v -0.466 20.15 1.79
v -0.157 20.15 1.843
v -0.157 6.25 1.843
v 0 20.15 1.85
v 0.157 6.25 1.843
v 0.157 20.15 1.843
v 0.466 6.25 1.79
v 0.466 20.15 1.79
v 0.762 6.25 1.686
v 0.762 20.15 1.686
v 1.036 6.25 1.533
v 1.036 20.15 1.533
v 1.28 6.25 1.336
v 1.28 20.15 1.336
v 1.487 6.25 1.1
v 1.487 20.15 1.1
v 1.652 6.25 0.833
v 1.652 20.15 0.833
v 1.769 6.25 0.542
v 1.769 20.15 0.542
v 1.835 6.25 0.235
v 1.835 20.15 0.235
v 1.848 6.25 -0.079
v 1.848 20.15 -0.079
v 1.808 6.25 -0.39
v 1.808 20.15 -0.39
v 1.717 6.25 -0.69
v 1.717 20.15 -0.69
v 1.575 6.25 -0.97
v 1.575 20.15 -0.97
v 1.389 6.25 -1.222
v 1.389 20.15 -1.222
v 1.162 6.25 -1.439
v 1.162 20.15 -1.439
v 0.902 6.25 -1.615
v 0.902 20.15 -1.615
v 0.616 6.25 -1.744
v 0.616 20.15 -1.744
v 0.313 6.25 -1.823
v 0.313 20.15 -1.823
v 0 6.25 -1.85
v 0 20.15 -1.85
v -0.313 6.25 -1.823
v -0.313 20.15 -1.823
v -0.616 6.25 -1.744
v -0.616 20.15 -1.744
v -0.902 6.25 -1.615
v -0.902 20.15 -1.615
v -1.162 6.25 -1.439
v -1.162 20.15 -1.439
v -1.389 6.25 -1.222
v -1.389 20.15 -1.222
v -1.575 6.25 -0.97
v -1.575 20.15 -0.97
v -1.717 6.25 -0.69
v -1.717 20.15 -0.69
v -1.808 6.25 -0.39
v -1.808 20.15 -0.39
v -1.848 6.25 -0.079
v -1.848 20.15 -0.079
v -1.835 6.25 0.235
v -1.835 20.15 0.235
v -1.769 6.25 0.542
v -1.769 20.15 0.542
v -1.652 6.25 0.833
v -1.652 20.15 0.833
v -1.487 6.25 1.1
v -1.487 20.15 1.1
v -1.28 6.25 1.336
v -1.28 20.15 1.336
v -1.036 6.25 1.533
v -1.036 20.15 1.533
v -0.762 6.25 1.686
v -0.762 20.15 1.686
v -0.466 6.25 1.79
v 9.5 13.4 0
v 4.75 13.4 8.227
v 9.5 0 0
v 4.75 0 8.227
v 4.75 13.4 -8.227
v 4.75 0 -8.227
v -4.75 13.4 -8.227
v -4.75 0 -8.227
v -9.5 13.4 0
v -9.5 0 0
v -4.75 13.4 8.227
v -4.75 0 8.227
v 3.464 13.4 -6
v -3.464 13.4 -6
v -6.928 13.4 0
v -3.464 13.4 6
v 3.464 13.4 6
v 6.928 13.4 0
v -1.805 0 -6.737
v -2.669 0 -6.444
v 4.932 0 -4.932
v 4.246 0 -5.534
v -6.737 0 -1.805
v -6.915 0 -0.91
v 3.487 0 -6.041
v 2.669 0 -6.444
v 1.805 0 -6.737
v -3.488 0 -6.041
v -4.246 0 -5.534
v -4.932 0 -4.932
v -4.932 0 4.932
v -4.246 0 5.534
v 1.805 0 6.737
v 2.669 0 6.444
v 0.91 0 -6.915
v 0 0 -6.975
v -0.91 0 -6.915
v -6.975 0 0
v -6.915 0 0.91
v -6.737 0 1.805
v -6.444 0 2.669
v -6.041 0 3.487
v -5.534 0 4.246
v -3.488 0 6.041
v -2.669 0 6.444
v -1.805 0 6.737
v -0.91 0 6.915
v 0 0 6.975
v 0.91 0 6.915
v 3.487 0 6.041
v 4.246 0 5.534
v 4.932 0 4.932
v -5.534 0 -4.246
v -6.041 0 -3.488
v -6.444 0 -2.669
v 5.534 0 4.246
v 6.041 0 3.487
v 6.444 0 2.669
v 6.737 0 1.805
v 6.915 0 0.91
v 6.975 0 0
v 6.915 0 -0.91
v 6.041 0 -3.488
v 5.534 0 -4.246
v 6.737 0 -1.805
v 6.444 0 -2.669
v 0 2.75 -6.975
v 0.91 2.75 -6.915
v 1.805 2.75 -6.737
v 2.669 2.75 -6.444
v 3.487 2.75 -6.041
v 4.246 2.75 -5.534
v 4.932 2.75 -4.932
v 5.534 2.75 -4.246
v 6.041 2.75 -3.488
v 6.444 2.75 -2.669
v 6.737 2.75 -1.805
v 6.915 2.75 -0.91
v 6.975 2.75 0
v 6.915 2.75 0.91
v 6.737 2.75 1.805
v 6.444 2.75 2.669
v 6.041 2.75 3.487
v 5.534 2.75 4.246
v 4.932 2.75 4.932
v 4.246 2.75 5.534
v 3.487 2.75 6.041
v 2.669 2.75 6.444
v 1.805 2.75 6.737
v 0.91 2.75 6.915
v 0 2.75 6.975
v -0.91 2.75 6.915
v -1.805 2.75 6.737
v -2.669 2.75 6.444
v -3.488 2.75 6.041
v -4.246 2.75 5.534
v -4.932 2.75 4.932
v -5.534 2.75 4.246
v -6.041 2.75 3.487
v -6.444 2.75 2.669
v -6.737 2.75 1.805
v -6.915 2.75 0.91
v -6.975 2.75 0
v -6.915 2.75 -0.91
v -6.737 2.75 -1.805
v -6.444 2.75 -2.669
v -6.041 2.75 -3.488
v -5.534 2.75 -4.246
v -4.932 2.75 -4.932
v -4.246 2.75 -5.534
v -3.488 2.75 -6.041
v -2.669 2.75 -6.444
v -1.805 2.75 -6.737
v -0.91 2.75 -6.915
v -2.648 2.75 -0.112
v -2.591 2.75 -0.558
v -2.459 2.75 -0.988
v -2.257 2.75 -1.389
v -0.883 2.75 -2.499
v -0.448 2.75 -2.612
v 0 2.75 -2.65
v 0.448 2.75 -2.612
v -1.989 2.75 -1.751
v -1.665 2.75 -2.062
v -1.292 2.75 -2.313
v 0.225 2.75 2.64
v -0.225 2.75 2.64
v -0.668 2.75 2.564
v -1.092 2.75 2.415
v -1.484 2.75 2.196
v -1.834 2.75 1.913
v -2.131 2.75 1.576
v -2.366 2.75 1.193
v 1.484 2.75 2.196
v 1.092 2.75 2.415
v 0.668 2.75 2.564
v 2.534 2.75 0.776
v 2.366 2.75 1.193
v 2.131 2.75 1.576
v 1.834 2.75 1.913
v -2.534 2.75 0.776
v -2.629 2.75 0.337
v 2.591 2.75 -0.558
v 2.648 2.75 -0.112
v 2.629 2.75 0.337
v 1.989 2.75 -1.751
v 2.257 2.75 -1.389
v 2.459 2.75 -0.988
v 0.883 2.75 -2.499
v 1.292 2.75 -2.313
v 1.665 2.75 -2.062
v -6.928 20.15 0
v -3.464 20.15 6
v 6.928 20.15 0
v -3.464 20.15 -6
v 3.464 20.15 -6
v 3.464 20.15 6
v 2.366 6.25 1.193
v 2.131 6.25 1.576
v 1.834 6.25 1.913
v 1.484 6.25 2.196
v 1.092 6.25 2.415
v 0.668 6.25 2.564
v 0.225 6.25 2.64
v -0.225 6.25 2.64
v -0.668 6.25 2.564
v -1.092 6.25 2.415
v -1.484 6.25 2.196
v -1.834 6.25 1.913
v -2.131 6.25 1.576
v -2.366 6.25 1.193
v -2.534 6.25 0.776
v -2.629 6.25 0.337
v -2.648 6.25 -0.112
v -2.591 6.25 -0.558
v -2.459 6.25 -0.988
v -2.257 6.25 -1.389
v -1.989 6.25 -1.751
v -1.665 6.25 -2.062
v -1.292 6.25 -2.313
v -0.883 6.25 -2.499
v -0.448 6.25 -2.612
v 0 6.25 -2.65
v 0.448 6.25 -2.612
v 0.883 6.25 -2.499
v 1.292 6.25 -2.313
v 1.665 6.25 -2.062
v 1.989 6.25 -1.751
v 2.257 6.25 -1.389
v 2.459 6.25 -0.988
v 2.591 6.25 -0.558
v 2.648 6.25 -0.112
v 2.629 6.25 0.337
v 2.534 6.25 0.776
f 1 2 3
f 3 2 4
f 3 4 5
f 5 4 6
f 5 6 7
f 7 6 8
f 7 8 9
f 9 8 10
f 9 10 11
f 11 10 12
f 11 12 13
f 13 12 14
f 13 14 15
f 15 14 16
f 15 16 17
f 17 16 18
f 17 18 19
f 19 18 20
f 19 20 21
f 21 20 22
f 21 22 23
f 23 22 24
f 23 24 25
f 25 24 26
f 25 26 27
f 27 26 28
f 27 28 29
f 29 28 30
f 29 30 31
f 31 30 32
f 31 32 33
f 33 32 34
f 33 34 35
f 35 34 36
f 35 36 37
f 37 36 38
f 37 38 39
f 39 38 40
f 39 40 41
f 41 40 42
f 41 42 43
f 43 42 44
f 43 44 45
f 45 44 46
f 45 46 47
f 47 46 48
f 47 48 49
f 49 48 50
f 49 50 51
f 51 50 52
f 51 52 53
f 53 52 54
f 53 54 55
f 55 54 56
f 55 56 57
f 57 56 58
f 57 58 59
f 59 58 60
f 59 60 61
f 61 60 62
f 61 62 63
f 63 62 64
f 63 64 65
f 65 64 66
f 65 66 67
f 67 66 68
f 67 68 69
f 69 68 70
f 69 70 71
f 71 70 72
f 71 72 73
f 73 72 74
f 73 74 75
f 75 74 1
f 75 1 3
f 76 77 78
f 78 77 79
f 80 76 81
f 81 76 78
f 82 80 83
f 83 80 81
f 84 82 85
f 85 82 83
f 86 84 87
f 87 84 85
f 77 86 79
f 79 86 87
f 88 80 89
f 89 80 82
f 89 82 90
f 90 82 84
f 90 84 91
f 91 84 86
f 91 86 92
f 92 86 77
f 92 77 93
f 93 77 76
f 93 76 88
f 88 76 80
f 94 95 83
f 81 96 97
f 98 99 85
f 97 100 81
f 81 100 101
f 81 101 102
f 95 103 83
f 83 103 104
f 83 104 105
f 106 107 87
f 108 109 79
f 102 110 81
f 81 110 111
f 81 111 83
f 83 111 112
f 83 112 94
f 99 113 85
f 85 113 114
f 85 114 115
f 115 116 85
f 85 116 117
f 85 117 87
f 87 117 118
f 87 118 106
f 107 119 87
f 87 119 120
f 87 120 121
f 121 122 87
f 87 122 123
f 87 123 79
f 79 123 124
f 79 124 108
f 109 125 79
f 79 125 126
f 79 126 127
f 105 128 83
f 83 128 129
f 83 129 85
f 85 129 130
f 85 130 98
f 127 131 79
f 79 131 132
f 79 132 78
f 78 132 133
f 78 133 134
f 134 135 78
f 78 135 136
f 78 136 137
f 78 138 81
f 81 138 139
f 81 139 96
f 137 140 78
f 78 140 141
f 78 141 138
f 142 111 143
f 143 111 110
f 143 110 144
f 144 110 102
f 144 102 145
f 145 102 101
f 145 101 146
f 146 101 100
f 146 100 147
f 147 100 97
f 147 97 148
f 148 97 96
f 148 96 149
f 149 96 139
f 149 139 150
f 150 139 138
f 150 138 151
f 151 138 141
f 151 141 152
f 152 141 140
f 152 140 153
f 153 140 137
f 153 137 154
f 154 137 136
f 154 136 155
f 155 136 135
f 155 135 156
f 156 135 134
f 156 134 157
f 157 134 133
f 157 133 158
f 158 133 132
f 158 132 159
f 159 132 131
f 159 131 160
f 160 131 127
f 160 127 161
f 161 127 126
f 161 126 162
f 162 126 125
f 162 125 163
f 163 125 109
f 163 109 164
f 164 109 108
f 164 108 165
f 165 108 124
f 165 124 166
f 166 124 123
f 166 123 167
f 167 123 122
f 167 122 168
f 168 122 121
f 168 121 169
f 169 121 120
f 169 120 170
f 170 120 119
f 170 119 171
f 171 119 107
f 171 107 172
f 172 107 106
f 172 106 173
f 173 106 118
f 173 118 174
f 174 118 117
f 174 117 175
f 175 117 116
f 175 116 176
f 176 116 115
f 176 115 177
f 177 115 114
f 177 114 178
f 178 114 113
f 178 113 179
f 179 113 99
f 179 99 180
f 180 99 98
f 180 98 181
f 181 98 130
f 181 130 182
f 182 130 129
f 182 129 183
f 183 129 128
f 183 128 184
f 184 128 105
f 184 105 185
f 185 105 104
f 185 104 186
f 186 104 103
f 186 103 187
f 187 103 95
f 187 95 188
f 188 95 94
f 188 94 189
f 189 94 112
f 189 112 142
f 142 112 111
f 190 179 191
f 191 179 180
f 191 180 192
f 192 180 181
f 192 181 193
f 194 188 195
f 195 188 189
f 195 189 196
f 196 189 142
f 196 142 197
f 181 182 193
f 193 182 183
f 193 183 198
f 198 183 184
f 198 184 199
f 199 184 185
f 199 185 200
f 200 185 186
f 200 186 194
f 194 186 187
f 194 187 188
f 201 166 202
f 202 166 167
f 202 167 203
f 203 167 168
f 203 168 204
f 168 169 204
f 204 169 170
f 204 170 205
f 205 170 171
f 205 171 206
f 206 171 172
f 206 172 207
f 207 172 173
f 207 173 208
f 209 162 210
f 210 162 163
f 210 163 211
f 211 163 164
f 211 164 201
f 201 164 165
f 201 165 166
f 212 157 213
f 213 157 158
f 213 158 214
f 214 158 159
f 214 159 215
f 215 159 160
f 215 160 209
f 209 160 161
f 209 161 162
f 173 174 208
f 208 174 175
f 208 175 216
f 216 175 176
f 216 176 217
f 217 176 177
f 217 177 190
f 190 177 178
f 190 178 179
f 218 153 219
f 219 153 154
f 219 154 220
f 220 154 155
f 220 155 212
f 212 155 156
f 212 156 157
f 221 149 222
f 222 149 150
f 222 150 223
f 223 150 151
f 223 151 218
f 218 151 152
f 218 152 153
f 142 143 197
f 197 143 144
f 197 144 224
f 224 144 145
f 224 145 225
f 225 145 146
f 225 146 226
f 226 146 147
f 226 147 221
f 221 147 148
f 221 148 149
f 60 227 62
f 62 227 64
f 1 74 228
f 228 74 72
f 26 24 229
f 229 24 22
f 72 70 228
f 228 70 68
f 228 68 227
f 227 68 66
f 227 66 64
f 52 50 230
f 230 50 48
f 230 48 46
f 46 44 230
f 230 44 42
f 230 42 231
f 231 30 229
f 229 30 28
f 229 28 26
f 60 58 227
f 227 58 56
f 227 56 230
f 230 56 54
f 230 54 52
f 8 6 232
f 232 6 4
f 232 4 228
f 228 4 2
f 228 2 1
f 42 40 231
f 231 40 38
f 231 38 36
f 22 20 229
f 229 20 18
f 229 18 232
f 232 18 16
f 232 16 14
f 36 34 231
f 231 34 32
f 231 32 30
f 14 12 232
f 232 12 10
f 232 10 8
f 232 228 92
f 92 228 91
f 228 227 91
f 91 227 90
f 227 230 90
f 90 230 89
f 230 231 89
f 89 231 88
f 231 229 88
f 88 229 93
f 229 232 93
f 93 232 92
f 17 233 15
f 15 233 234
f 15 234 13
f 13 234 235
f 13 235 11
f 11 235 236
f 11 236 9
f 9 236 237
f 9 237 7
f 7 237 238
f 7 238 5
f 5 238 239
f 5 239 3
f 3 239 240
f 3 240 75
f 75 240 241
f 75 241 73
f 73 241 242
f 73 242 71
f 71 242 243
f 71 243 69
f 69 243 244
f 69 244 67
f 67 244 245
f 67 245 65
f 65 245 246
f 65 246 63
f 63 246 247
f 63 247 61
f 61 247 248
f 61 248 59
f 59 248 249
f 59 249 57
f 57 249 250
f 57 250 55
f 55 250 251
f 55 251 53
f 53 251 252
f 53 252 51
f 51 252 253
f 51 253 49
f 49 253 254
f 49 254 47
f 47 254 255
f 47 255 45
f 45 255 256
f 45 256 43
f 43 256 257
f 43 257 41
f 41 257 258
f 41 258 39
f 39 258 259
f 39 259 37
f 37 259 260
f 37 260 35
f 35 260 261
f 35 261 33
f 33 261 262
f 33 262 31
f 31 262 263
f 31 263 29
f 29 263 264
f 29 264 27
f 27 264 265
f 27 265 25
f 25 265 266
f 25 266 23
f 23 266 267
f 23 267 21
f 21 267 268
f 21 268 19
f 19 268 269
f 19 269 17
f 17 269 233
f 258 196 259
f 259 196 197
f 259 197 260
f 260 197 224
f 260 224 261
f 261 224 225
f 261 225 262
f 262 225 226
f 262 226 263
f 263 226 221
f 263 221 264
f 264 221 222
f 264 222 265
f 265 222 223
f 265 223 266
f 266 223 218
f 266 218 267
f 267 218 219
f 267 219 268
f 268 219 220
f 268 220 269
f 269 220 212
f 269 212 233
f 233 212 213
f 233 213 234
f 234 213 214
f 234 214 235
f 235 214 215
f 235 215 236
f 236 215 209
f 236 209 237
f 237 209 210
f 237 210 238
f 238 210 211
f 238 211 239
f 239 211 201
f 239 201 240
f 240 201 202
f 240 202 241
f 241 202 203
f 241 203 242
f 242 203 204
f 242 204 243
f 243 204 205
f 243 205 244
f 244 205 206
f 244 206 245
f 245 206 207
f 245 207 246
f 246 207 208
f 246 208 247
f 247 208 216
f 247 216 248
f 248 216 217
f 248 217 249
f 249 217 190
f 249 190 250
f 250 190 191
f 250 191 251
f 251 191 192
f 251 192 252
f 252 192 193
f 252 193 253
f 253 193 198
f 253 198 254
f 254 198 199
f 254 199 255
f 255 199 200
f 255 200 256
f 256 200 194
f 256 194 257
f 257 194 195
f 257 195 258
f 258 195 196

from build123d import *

# Parameters (mm, degrees)
SALIENTE_EXTRUIR1_DEPTH = 13.4
CROQUIS2_R              = 6.975
CORTAR_EXTRUIR1_DEPTH   = 2.75
CROQUIS3_R              = 1.85
CORTAR_EXTRUIR2_DEPTH   = 10.65
SALIENTE_EXTRUIR2_DEPTH = 6.75
CORTAR_EXTRUIR3_START   = -6.75
CROQUIS6_R              = 1.85
CORTAR_EXTRUIR3_DEPTH   = 6.75
CROQUIS7_R              = 2.65
CORTAR_EXTRUIR4_DEPTH   = 3.5


with BuildPart() as part:
    # Croquis1 → Saliente-Extruir1 (new body)
    with BuildSketch(Plane(origin=(0, 0, 0), x_dir=(1, 0, 0), z_dir=(0, 1, 0))):
        Polygon((9.5, 0), (4.75, 8.227241336), (-4.75, 8.227241336), (-9.5, 0), (-4.75, -8.227241336), (4.75, -8.227241336), align=None)
    extrude(amount=SALIENTE_EXTRUIR1_DEPTH)

    # Croquis2 → Cortar-Extruir1 (cut)
    with BuildSketch(Plane.XZ):
        with Locations(Location((0, 0, 0), (0, 0, 270))):
            Circle(CROQUIS2_R)
    extrude(amount=-CORTAR_EXTRUIR1_DEPTH, mode=Mode.SUBTRACT)

    # Croquis3 → Cortar-Extruir2 (cut)
    with BuildSketch(Plane.XZ.offset(-2.75)):
        with Locations(Location((0, 0, 0), (0, 0, 270))):
            Circle(CROQUIS3_R)
    extrude(amount=-CORTAR_EXTRUIR2_DEPTH, mode=Mode.SUBTRACT)

    # Croquis4 → Saliente-Extruir2 (add)
    with BuildSketch(Plane(origin=(0, 13.4, 0), x_dir=(1, 0, 0), z_dir=(0, 1, 0))):
        Polygon((6.92820323, 0), (3.464101615, 6), (-3.464101615, 6), (-6.92820323, 0), (-3.464101615, -6), (3.464101615, -6), align=None)
    extrude(amount=SALIENTE_EXTRUIR2_DEPTH)

    # Croquis6 → Cortar-Extruir3 (cut)
    with BuildSketch(Plane(origin=(0, 20.15, 0), x_dir=(1, 0, 0), z_dir=(0, 1, 0)).offset(CORTAR_EXTRUIR3_START)):
        with Locations(Location((0, 0, 0), (0, 0, 90))):
            Circle(CROQUIS6_R)
    extrude(amount=CORTAR_EXTRUIR3_DEPTH, mode=Mode.SUBTRACT)

    # Croquis7 → Cortar-Extruir4 (cut)
    with BuildSketch(Plane.XZ.offset(-2.75)):
        with Locations(Location((0, 0, 0), (0, 0, 270))):
            Circle(CROQUIS7_R)
    extrude(amount=-CORTAR_EXTRUIR4_DEPTH, mode=Mode.SUBTRACT)


solid = part.part
